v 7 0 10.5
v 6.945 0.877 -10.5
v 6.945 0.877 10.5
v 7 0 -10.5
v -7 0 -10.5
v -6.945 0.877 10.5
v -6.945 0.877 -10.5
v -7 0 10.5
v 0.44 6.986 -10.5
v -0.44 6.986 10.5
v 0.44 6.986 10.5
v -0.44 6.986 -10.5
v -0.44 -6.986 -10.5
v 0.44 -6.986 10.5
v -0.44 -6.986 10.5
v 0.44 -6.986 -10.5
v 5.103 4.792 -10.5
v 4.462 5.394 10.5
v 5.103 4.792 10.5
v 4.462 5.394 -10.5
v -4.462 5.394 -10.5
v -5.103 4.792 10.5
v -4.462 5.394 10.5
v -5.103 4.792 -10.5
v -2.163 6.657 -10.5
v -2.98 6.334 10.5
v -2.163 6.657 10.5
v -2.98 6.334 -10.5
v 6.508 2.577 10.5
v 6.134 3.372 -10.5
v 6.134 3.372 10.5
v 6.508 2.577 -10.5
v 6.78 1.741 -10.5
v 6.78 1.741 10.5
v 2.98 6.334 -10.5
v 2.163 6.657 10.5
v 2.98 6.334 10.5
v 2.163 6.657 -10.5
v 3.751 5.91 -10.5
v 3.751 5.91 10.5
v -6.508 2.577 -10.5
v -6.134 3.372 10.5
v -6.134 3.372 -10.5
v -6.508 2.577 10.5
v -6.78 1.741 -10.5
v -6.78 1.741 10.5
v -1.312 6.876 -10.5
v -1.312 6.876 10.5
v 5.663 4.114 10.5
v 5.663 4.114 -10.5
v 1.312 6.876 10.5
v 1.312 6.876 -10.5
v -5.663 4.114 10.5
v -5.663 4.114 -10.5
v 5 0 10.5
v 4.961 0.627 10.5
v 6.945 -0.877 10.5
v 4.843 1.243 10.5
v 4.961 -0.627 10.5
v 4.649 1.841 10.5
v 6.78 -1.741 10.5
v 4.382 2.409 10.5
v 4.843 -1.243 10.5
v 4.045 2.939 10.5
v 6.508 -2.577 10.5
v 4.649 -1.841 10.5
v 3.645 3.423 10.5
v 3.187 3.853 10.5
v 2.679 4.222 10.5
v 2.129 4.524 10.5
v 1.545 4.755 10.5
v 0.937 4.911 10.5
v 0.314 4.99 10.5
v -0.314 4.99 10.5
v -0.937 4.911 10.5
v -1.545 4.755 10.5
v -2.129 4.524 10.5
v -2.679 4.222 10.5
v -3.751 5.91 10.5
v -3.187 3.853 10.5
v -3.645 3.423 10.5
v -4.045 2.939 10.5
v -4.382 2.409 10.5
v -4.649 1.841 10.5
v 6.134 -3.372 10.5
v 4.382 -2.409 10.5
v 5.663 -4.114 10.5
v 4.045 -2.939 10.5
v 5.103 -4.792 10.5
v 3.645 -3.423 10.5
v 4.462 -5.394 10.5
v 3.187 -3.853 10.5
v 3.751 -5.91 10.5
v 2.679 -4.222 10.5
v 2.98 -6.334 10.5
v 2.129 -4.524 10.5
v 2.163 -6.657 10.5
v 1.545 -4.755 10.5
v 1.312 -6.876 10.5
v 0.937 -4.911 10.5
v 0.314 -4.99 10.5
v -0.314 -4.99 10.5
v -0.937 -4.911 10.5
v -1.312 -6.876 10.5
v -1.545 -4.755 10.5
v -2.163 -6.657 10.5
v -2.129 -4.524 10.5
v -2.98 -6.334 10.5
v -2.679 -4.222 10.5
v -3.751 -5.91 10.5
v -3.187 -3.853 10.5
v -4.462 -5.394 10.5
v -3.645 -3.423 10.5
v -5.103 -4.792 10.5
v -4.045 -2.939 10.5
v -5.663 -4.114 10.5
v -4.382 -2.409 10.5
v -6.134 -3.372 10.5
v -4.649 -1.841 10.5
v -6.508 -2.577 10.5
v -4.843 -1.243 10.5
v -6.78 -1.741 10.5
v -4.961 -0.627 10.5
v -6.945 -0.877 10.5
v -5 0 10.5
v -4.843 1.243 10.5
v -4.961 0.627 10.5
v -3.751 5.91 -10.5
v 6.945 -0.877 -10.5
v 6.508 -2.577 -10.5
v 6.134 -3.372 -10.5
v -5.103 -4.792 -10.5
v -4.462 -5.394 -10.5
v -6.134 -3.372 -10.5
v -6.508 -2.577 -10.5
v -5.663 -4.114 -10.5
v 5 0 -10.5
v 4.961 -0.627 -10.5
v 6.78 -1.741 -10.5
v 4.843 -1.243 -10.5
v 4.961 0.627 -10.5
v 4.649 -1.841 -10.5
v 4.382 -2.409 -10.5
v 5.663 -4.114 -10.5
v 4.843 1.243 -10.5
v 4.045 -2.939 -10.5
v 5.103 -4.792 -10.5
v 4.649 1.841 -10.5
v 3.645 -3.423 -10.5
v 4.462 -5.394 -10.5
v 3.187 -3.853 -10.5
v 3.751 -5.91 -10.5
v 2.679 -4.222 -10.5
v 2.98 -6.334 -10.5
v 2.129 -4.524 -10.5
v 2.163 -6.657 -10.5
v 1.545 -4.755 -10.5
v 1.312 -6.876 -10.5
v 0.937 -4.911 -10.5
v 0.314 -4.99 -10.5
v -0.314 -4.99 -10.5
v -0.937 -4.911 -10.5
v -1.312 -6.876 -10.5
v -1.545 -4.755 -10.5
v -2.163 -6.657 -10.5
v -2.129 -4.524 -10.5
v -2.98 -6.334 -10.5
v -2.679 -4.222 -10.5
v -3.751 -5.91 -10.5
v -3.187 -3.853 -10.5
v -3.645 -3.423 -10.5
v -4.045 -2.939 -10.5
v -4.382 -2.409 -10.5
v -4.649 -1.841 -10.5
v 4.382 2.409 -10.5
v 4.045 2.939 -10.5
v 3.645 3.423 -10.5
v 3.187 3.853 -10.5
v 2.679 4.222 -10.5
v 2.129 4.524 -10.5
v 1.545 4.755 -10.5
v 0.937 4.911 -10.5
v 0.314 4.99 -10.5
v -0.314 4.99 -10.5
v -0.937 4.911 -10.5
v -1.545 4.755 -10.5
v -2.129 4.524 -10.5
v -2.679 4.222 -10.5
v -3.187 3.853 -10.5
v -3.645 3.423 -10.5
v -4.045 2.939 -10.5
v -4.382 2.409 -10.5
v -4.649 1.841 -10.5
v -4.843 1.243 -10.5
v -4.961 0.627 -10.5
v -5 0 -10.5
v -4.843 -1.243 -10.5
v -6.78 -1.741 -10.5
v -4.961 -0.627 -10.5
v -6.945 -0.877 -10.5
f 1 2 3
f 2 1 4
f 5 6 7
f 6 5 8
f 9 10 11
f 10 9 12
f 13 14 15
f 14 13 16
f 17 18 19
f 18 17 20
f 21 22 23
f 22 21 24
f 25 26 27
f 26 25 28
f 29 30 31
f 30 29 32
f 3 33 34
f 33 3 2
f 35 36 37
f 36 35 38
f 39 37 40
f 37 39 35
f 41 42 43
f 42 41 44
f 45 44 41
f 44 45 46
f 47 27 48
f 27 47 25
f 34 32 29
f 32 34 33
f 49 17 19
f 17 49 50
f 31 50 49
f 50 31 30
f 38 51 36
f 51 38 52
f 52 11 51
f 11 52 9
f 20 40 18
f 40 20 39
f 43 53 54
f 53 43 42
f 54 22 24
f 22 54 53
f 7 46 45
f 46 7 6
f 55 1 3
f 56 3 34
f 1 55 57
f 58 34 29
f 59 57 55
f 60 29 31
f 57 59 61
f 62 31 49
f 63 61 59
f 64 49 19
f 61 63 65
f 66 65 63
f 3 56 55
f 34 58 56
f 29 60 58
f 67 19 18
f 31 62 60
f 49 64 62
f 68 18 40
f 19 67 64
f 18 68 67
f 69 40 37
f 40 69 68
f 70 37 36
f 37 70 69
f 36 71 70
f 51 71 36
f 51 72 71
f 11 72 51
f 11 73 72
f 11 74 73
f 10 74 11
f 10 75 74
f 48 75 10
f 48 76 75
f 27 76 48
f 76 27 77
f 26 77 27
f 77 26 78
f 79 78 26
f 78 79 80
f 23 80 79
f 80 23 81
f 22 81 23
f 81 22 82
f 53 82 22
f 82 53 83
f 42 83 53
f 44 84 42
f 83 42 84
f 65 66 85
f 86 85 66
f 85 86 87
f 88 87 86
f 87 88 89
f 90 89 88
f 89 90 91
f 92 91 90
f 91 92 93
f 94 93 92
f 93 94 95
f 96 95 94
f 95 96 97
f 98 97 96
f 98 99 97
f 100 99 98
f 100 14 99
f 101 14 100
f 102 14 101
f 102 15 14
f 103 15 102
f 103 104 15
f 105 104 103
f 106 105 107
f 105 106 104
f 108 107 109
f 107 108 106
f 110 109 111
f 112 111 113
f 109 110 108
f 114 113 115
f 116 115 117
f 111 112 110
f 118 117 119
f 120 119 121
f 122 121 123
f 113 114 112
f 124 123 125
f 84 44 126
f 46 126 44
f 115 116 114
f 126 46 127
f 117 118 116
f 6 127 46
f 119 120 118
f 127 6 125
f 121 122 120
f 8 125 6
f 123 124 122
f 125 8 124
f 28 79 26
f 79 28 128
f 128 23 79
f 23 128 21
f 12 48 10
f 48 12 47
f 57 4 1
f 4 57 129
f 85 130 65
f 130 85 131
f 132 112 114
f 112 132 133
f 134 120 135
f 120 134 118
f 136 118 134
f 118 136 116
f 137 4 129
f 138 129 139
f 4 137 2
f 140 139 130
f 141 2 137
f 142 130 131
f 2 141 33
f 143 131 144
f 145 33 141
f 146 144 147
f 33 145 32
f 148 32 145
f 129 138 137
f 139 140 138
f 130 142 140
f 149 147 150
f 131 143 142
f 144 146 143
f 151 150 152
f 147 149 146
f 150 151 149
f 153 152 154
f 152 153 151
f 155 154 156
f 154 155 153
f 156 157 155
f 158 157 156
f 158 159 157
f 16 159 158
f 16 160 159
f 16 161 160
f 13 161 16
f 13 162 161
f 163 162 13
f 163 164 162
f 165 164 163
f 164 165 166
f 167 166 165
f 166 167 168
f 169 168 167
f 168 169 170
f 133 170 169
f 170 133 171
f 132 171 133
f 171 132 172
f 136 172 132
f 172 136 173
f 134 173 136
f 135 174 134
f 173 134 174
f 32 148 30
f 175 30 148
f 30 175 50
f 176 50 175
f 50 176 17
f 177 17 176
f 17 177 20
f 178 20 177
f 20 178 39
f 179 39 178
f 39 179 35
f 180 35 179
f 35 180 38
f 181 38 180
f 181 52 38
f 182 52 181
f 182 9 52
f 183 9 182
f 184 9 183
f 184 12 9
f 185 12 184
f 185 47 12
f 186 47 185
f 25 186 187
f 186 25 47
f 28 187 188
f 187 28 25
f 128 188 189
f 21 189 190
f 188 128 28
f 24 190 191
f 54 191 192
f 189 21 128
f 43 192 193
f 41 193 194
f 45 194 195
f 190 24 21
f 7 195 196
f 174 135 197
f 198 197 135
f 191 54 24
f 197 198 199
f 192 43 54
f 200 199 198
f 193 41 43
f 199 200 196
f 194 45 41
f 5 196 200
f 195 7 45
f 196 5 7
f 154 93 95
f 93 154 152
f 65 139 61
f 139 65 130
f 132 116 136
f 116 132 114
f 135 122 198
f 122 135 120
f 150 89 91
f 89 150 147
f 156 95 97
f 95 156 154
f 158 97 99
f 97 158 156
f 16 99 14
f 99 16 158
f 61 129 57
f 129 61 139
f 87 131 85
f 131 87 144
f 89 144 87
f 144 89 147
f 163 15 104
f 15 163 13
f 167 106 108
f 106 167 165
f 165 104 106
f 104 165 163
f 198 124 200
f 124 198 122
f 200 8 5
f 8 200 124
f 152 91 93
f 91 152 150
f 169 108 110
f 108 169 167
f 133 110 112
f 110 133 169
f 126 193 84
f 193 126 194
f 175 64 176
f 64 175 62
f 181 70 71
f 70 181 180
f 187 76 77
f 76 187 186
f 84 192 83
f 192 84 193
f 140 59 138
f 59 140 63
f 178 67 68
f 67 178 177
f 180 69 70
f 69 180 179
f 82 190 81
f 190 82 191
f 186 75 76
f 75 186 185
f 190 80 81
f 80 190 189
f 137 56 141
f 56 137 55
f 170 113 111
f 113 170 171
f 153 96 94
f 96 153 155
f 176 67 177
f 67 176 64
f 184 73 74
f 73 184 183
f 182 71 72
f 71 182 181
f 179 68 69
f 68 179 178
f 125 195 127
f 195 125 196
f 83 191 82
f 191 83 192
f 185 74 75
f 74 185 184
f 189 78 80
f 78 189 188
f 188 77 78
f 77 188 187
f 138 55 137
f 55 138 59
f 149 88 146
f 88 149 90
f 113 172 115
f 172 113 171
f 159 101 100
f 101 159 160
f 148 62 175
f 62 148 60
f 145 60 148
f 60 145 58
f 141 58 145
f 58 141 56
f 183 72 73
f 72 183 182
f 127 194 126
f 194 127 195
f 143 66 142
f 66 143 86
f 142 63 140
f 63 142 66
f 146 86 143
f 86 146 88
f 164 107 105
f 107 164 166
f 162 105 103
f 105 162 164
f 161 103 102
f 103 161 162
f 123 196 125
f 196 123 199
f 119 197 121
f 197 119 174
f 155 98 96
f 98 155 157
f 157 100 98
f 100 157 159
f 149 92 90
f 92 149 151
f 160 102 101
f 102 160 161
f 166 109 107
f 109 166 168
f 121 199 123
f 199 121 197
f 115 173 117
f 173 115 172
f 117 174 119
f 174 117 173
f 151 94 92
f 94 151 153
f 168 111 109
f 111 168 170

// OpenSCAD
$fn = 50;


difference() {
	union() {
		translate(v = [0, 0, -10.5000000000]) {
			cylinder(h = 21, r = 7.0000000000);
		}
	}
	union() {
		translate(v = [0, 0, -100.0000000000]) {
			cylinder(h = 200, r = 5);
		}
	}
}
